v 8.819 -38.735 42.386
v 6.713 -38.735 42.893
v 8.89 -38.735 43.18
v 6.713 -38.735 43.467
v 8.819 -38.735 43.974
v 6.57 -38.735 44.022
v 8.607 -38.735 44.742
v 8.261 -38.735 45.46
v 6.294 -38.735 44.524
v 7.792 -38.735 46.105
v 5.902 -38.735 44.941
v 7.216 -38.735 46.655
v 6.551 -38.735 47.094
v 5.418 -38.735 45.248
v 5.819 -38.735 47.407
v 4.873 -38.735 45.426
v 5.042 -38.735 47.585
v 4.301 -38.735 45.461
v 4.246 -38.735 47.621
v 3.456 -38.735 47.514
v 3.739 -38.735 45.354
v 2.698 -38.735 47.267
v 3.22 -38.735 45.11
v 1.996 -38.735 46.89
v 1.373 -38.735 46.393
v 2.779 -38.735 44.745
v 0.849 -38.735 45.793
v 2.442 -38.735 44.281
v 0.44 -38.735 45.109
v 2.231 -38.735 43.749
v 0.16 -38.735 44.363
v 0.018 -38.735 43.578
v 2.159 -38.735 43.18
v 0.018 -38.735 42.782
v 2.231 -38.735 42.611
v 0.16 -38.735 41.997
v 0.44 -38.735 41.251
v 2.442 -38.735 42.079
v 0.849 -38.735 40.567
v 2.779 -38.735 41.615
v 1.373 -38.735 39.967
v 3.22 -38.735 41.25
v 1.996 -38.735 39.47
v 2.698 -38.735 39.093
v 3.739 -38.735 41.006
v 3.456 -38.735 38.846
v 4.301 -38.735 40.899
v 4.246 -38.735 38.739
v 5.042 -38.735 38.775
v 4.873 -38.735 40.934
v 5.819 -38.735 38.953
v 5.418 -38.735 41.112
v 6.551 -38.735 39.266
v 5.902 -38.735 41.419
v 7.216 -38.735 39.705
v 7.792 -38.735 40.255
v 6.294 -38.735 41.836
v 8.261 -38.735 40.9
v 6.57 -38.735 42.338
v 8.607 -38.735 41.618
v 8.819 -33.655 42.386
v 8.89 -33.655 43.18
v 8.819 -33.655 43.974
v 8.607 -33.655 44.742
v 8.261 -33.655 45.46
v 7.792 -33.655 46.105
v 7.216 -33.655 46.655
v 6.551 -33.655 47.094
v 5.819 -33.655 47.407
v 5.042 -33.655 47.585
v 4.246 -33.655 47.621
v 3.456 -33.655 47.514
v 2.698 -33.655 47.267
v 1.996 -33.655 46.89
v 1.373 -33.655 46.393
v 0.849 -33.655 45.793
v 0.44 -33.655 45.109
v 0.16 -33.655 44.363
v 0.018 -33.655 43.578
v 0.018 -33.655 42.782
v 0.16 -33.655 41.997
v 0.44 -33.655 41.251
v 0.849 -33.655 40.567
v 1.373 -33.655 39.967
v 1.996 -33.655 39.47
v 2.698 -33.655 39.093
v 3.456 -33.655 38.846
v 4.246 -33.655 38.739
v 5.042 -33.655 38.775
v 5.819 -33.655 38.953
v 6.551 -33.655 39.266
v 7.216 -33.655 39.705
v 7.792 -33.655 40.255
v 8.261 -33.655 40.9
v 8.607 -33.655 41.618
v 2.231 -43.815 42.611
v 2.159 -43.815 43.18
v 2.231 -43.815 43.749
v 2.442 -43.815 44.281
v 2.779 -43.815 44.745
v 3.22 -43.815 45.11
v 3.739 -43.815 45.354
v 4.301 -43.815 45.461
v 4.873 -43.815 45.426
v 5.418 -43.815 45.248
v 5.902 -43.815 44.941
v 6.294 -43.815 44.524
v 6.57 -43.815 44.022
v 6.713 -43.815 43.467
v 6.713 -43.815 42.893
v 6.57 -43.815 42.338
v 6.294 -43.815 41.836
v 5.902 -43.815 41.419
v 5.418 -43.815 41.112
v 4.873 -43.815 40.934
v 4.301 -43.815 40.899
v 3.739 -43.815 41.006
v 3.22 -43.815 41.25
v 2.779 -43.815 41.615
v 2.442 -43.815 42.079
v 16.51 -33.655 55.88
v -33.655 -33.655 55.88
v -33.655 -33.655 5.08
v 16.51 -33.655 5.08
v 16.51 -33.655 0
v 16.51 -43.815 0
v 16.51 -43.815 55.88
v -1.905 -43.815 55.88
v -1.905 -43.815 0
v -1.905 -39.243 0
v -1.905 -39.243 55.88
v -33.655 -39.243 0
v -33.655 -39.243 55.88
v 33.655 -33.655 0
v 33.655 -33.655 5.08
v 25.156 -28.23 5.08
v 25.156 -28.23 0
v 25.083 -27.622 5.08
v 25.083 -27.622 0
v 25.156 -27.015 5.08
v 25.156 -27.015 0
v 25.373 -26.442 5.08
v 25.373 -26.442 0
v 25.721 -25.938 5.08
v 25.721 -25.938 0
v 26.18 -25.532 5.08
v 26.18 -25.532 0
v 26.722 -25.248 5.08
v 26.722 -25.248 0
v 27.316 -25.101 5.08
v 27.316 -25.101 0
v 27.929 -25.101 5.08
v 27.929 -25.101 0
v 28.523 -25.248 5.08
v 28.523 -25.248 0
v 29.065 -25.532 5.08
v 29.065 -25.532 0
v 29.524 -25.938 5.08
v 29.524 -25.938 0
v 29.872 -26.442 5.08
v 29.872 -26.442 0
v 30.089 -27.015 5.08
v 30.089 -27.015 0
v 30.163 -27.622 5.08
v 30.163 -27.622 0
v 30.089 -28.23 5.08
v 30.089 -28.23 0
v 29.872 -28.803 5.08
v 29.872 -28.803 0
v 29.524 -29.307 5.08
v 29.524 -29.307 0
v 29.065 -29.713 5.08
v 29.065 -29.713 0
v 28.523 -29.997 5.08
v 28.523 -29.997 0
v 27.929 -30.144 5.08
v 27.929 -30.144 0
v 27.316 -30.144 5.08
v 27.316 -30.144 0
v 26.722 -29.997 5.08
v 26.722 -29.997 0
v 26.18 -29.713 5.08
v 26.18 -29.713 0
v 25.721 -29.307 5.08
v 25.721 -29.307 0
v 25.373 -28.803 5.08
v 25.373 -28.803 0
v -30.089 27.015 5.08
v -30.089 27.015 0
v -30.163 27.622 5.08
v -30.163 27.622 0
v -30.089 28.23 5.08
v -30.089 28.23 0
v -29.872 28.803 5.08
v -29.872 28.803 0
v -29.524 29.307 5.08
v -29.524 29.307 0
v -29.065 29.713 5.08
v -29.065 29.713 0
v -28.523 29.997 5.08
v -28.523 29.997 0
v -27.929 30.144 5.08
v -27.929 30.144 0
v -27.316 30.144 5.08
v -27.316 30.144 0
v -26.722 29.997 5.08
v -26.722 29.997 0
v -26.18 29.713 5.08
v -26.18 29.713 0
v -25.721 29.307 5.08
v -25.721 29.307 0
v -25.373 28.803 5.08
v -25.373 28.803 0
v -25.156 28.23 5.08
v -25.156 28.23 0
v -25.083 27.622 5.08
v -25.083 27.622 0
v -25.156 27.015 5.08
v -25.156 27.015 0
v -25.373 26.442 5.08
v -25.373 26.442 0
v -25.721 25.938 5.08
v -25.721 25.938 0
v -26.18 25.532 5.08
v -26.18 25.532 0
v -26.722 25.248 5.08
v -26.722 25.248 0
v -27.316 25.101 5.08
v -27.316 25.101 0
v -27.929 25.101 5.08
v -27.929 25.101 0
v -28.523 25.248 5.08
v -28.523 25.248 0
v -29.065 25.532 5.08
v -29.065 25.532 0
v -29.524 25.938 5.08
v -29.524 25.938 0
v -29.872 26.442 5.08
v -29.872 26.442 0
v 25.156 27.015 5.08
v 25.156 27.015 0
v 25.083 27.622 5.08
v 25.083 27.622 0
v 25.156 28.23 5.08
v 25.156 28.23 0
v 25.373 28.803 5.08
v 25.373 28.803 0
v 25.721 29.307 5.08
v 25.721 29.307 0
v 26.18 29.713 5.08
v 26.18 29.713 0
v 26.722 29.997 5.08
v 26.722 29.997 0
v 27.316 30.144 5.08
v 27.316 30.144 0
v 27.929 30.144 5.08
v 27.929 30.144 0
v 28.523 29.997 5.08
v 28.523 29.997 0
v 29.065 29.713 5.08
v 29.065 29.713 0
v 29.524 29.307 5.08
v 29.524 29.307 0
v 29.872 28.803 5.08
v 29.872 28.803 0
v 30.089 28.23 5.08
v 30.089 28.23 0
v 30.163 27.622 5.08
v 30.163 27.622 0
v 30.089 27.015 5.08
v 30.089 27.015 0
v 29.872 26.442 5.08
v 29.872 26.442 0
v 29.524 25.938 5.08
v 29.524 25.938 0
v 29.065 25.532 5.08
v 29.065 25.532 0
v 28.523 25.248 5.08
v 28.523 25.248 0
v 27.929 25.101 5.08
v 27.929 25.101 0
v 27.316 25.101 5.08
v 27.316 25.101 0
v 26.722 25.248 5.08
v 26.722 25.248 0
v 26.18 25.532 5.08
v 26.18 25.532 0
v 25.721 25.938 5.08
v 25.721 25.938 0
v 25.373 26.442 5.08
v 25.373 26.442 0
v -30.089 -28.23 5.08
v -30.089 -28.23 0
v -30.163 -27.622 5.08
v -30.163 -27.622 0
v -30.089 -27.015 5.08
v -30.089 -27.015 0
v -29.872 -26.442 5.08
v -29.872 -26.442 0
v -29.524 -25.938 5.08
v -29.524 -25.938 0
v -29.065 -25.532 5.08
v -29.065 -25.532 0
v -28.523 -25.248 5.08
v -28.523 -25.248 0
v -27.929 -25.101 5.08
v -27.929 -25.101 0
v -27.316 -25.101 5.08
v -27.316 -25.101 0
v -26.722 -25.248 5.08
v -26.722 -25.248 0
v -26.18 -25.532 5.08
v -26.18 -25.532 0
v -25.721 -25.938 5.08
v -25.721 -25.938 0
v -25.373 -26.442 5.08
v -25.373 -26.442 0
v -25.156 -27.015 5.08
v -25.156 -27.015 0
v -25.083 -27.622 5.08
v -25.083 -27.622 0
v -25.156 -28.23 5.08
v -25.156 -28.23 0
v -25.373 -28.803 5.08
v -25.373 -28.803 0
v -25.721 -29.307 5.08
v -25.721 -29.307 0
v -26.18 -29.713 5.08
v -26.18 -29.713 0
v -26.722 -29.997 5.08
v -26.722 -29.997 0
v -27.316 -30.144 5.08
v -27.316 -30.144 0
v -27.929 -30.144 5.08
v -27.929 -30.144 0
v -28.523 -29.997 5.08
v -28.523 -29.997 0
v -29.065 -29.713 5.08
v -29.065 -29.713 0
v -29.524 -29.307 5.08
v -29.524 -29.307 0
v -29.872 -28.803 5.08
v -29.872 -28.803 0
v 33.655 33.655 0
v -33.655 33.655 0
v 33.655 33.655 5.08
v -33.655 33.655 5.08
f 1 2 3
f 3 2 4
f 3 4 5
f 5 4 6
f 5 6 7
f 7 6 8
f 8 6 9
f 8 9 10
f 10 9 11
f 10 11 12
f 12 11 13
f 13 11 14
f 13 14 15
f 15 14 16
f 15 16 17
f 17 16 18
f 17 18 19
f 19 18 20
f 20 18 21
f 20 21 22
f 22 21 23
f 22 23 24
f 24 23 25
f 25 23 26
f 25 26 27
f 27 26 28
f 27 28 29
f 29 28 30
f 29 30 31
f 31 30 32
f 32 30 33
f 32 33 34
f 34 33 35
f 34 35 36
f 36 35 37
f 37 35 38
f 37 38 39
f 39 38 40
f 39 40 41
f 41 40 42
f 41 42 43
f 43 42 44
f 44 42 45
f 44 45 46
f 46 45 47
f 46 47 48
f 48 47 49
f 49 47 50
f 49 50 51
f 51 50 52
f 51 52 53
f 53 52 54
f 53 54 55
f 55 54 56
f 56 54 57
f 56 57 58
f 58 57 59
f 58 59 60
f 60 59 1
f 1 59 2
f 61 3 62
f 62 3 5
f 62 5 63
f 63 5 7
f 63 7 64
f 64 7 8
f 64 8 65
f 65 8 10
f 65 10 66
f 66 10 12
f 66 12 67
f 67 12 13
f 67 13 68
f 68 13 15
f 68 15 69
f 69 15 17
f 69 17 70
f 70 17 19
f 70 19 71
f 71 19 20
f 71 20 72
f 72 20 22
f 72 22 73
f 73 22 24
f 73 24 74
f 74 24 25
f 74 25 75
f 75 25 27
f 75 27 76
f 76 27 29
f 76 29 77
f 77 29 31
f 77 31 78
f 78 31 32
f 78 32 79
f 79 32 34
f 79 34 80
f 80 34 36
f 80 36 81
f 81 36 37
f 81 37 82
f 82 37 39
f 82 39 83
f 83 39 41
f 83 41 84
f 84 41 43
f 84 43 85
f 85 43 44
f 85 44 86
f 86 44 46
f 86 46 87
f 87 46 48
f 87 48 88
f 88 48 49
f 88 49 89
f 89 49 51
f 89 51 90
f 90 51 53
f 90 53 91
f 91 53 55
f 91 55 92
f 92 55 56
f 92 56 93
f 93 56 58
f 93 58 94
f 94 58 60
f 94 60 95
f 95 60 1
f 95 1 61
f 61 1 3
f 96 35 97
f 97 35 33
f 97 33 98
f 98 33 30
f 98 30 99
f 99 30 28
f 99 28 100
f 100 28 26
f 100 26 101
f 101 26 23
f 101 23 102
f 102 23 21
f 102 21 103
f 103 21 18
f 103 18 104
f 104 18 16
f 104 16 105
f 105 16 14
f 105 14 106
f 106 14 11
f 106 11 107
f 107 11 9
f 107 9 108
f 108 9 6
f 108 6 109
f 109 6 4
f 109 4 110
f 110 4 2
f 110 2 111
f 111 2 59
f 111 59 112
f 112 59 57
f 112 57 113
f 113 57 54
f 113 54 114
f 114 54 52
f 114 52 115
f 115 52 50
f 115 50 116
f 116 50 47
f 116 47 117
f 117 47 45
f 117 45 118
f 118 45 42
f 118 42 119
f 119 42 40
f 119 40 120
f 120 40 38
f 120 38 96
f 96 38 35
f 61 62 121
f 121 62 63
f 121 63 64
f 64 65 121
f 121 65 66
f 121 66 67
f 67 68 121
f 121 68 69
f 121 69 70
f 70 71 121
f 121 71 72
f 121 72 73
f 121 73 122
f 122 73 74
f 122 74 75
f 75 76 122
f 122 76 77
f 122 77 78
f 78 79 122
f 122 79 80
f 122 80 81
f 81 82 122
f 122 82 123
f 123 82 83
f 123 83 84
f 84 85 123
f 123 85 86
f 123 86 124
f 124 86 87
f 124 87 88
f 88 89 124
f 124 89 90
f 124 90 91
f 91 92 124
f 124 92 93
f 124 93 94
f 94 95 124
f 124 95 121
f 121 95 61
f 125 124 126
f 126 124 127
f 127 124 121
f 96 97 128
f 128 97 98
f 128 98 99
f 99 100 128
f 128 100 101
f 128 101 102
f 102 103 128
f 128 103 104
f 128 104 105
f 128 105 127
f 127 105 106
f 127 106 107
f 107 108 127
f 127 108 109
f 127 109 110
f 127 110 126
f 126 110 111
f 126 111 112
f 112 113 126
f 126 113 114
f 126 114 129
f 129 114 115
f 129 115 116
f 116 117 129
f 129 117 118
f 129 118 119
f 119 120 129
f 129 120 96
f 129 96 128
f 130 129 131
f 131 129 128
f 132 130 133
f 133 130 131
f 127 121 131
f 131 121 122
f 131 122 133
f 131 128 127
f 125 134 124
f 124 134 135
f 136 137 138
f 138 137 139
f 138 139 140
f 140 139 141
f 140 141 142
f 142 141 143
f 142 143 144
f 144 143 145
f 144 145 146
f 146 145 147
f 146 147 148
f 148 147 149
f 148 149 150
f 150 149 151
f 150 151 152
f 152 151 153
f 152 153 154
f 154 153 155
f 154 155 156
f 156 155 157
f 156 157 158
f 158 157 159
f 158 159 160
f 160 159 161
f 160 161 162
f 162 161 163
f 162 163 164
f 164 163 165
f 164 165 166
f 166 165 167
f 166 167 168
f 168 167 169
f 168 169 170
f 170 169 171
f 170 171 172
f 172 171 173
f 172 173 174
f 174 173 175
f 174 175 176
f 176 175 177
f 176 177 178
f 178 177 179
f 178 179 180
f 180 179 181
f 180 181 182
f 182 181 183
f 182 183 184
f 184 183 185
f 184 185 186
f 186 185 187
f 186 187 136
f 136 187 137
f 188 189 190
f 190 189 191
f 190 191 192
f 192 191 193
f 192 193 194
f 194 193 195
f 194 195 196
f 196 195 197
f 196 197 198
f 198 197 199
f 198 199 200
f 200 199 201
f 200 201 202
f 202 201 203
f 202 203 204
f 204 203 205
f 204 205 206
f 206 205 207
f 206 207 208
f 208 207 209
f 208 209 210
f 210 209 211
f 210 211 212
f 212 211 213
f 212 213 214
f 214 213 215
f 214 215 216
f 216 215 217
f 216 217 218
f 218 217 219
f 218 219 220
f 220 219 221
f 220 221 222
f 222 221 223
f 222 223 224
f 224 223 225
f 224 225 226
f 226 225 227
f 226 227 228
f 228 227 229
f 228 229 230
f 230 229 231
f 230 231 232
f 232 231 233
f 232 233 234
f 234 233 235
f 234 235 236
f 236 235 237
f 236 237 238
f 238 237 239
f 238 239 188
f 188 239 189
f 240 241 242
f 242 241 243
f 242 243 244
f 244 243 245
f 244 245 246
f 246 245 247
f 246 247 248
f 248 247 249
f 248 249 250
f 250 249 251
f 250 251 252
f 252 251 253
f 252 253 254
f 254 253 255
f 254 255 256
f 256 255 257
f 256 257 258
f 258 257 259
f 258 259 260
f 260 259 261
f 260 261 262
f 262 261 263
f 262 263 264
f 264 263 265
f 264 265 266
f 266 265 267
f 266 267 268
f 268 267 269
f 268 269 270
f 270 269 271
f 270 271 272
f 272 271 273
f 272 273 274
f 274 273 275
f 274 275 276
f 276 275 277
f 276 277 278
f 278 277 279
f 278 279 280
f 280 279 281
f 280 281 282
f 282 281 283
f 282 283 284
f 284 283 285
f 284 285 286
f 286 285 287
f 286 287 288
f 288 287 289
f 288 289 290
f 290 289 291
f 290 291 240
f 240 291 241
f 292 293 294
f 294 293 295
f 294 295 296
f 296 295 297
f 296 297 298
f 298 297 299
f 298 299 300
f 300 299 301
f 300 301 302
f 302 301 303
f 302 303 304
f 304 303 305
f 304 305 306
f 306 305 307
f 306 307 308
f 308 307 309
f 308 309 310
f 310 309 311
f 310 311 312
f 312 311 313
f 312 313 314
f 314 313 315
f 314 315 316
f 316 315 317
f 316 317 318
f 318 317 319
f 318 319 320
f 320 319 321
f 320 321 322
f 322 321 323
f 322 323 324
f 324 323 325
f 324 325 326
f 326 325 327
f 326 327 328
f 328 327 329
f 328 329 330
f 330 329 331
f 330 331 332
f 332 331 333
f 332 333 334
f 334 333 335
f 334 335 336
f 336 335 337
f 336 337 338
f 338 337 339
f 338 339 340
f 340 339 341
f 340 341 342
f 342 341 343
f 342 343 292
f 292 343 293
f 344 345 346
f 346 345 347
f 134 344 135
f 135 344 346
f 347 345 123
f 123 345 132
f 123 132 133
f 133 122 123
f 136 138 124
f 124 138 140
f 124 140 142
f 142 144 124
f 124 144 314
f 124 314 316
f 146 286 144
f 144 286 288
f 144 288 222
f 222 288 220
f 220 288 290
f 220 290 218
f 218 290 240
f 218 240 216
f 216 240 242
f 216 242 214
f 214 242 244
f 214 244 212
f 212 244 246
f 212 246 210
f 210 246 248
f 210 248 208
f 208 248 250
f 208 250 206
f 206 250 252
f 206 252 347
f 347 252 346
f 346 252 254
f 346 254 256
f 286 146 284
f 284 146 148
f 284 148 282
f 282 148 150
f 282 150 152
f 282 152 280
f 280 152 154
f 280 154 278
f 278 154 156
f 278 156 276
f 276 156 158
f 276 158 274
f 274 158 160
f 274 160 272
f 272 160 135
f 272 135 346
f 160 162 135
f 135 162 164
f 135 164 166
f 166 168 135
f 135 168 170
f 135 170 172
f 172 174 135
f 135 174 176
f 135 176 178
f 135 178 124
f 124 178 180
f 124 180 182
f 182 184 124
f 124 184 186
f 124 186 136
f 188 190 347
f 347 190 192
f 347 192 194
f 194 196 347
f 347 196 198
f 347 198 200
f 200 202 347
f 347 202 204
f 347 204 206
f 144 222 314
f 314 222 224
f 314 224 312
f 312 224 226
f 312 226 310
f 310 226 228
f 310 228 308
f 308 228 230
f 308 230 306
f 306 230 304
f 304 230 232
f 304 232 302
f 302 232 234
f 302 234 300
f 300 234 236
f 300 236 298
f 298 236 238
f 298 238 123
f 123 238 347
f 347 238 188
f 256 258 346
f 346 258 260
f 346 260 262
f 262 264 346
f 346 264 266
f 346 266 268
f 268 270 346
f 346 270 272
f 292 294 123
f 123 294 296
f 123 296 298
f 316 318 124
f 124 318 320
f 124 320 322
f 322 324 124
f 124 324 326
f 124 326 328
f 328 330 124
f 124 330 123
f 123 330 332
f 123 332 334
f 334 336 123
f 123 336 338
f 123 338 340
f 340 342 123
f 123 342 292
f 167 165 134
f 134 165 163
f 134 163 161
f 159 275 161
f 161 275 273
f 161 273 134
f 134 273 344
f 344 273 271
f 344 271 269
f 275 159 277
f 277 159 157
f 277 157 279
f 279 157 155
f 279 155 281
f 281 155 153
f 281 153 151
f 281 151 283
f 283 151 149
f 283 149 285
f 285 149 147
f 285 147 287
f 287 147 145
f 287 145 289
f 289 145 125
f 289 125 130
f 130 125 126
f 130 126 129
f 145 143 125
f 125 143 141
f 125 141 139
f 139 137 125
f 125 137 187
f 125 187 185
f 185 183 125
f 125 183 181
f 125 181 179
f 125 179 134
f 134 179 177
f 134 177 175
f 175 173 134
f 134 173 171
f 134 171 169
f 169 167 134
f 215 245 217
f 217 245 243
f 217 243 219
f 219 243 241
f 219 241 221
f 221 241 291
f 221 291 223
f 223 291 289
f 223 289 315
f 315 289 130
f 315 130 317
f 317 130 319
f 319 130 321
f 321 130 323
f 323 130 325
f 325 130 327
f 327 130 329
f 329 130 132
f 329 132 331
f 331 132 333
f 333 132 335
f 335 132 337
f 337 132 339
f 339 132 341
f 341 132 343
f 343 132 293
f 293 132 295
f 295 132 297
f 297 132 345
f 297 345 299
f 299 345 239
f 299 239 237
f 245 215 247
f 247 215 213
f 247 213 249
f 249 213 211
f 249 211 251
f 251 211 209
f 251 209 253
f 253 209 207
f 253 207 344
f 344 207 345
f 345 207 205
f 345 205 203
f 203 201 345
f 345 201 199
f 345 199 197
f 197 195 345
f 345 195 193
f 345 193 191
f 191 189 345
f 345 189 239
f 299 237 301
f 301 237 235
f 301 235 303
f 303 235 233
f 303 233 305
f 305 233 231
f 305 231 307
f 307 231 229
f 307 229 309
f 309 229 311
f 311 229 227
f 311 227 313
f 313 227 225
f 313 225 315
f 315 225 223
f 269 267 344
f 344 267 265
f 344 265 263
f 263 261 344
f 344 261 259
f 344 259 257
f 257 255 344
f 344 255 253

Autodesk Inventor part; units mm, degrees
ref_plane "YZ Plane" through (0, 0, 0) normal (1, 0, 0) x (0, 1, 0)
ref_plane "XZ Plane" through (0, 0, 0) normal (0, 1, 0) x (-1, 0, 0)
ref_plane "XY Plane" through (0, 0, 0) normal (0, 0, 1) x (1, 0, 0)
sketch "Sketch1" plane through (0, 0, 0) normal (0, 0, 1) x (1, 0, 0)
  line L0 (33.655, 33.655) -> (-33.655, 33.655)
  line L1 (-33.655, 33.655) -> (-33.655, -33.655)
  line L2 (-33.655, -33.655) -> (33.655, -33.655)
  line L3 (33.655, -33.655) -> (33.655, 33.655)
  line L4 (33.655, 33.655) -> (-33.655, -33.655) construction
  line L5 (-33.655, 33.655) -> (33.655, -33.655) construction
  circle A0 centre (0, 0) radius 39.0641 construction
  point P0 (-27.6225, 27.6225)
  point P1 (27.6225, 27.6225)
  point P2 (27.6225, -27.6225)
  point P3 (-27.6225, -27.6225)
  dimension "d1" = 67.31
  dimension "d2" = 67.31
  dimension "d3" = 55.245
extrude "Extrusion1" add sketch "Sketch1" along normal blind 5.08
hole "Hole1" at (-27.6225, 27.6225, 0) at (27.6225, 27.6225, 0) at (27.6225, -27.6225, 0) at (-27.6225, -27.6225, 0) direction (0, 0, 1) diameter 5.08 end through all
sketch "Sketch2" plane through (0, 0, 0) normal (0, 0, -1) x (-1, 0, 0)
  line L0 (33.655, -33.655) -> (-33.655, -33.655) projected
  line L1 (-16.51, -33.655) -> (-16.51, -43.815)
  line L2 (-16.51, -43.815) -> (1.905, -43.815)
  line L3 (1.905, -43.815) -> (1.905, -33.655)
  line L4 (-33.655, -33.655) -> (-33.655, 33.655) projected
  line L5 (1.905, -33.655) -> (1.905, -39.243)
  line L6 (1.905, -39.243) -> (33.655, -39.243)
  line L7 (33.655, -39.243) -> (33.655, -33.655)
  line L8 (33.655, 33.655) -> (33.655, -33.655) projected
  line L9 (33.655, -43.815) -> (-33.655, -43.815) construction
  point P0 (0, 0)
  dimension "d14" = 17.145
  dimension "d16" = 10.16
  dimension "d17" = 4.572
  dimension "d18" = 31.75
extrude "Extrusion2" add sketch "Sketch2" against normal blind 55.88
sketch "Sketch3" plane through (-1.905, -33.655, 0) normal (0, -1, 0) x (1, 0, 0)
  line L0 (0, 0) -> (0, 55.88) projected
  line L1 (0, 55.88) -> (18.415, 55.88) projected
  point P0 (1.905, 0)
  point P1 (6.35, 43.18)
  dimension "d21" = 6.35
  dimension "d22" = 12.7
hole "Hole2" at (4.445, -33.655, 43.18) direction (0, -1, 0) diameter 4.572 end through all counterbore diameter 8.89 counterbore depth 5.08
properties part number "Battery Switch Mount"
